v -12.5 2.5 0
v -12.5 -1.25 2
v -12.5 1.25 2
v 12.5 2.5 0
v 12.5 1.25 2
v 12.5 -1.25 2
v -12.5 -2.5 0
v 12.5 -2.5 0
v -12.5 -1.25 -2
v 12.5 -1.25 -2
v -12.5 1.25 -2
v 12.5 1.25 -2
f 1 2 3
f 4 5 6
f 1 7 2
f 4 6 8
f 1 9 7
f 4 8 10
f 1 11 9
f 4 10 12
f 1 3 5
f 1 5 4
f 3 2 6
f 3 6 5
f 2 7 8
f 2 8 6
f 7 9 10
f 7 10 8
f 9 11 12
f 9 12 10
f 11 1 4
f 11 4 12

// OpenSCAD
// mm; affine-hexagonal outer proxy, NOT measured tip geometry
L=25.0; W=5.0; H=4.0;
// Local CAD extrusion is Z; rotate so the model long axis is X.
rotate([0,90,0]) linear_extrude(height=L,center=true)
polygon([[0,W/2],[-H/2,W/4],[-H/2,-W/4],[0,-W/2],[H/2,-W/4],[H/2,W/4]]);
